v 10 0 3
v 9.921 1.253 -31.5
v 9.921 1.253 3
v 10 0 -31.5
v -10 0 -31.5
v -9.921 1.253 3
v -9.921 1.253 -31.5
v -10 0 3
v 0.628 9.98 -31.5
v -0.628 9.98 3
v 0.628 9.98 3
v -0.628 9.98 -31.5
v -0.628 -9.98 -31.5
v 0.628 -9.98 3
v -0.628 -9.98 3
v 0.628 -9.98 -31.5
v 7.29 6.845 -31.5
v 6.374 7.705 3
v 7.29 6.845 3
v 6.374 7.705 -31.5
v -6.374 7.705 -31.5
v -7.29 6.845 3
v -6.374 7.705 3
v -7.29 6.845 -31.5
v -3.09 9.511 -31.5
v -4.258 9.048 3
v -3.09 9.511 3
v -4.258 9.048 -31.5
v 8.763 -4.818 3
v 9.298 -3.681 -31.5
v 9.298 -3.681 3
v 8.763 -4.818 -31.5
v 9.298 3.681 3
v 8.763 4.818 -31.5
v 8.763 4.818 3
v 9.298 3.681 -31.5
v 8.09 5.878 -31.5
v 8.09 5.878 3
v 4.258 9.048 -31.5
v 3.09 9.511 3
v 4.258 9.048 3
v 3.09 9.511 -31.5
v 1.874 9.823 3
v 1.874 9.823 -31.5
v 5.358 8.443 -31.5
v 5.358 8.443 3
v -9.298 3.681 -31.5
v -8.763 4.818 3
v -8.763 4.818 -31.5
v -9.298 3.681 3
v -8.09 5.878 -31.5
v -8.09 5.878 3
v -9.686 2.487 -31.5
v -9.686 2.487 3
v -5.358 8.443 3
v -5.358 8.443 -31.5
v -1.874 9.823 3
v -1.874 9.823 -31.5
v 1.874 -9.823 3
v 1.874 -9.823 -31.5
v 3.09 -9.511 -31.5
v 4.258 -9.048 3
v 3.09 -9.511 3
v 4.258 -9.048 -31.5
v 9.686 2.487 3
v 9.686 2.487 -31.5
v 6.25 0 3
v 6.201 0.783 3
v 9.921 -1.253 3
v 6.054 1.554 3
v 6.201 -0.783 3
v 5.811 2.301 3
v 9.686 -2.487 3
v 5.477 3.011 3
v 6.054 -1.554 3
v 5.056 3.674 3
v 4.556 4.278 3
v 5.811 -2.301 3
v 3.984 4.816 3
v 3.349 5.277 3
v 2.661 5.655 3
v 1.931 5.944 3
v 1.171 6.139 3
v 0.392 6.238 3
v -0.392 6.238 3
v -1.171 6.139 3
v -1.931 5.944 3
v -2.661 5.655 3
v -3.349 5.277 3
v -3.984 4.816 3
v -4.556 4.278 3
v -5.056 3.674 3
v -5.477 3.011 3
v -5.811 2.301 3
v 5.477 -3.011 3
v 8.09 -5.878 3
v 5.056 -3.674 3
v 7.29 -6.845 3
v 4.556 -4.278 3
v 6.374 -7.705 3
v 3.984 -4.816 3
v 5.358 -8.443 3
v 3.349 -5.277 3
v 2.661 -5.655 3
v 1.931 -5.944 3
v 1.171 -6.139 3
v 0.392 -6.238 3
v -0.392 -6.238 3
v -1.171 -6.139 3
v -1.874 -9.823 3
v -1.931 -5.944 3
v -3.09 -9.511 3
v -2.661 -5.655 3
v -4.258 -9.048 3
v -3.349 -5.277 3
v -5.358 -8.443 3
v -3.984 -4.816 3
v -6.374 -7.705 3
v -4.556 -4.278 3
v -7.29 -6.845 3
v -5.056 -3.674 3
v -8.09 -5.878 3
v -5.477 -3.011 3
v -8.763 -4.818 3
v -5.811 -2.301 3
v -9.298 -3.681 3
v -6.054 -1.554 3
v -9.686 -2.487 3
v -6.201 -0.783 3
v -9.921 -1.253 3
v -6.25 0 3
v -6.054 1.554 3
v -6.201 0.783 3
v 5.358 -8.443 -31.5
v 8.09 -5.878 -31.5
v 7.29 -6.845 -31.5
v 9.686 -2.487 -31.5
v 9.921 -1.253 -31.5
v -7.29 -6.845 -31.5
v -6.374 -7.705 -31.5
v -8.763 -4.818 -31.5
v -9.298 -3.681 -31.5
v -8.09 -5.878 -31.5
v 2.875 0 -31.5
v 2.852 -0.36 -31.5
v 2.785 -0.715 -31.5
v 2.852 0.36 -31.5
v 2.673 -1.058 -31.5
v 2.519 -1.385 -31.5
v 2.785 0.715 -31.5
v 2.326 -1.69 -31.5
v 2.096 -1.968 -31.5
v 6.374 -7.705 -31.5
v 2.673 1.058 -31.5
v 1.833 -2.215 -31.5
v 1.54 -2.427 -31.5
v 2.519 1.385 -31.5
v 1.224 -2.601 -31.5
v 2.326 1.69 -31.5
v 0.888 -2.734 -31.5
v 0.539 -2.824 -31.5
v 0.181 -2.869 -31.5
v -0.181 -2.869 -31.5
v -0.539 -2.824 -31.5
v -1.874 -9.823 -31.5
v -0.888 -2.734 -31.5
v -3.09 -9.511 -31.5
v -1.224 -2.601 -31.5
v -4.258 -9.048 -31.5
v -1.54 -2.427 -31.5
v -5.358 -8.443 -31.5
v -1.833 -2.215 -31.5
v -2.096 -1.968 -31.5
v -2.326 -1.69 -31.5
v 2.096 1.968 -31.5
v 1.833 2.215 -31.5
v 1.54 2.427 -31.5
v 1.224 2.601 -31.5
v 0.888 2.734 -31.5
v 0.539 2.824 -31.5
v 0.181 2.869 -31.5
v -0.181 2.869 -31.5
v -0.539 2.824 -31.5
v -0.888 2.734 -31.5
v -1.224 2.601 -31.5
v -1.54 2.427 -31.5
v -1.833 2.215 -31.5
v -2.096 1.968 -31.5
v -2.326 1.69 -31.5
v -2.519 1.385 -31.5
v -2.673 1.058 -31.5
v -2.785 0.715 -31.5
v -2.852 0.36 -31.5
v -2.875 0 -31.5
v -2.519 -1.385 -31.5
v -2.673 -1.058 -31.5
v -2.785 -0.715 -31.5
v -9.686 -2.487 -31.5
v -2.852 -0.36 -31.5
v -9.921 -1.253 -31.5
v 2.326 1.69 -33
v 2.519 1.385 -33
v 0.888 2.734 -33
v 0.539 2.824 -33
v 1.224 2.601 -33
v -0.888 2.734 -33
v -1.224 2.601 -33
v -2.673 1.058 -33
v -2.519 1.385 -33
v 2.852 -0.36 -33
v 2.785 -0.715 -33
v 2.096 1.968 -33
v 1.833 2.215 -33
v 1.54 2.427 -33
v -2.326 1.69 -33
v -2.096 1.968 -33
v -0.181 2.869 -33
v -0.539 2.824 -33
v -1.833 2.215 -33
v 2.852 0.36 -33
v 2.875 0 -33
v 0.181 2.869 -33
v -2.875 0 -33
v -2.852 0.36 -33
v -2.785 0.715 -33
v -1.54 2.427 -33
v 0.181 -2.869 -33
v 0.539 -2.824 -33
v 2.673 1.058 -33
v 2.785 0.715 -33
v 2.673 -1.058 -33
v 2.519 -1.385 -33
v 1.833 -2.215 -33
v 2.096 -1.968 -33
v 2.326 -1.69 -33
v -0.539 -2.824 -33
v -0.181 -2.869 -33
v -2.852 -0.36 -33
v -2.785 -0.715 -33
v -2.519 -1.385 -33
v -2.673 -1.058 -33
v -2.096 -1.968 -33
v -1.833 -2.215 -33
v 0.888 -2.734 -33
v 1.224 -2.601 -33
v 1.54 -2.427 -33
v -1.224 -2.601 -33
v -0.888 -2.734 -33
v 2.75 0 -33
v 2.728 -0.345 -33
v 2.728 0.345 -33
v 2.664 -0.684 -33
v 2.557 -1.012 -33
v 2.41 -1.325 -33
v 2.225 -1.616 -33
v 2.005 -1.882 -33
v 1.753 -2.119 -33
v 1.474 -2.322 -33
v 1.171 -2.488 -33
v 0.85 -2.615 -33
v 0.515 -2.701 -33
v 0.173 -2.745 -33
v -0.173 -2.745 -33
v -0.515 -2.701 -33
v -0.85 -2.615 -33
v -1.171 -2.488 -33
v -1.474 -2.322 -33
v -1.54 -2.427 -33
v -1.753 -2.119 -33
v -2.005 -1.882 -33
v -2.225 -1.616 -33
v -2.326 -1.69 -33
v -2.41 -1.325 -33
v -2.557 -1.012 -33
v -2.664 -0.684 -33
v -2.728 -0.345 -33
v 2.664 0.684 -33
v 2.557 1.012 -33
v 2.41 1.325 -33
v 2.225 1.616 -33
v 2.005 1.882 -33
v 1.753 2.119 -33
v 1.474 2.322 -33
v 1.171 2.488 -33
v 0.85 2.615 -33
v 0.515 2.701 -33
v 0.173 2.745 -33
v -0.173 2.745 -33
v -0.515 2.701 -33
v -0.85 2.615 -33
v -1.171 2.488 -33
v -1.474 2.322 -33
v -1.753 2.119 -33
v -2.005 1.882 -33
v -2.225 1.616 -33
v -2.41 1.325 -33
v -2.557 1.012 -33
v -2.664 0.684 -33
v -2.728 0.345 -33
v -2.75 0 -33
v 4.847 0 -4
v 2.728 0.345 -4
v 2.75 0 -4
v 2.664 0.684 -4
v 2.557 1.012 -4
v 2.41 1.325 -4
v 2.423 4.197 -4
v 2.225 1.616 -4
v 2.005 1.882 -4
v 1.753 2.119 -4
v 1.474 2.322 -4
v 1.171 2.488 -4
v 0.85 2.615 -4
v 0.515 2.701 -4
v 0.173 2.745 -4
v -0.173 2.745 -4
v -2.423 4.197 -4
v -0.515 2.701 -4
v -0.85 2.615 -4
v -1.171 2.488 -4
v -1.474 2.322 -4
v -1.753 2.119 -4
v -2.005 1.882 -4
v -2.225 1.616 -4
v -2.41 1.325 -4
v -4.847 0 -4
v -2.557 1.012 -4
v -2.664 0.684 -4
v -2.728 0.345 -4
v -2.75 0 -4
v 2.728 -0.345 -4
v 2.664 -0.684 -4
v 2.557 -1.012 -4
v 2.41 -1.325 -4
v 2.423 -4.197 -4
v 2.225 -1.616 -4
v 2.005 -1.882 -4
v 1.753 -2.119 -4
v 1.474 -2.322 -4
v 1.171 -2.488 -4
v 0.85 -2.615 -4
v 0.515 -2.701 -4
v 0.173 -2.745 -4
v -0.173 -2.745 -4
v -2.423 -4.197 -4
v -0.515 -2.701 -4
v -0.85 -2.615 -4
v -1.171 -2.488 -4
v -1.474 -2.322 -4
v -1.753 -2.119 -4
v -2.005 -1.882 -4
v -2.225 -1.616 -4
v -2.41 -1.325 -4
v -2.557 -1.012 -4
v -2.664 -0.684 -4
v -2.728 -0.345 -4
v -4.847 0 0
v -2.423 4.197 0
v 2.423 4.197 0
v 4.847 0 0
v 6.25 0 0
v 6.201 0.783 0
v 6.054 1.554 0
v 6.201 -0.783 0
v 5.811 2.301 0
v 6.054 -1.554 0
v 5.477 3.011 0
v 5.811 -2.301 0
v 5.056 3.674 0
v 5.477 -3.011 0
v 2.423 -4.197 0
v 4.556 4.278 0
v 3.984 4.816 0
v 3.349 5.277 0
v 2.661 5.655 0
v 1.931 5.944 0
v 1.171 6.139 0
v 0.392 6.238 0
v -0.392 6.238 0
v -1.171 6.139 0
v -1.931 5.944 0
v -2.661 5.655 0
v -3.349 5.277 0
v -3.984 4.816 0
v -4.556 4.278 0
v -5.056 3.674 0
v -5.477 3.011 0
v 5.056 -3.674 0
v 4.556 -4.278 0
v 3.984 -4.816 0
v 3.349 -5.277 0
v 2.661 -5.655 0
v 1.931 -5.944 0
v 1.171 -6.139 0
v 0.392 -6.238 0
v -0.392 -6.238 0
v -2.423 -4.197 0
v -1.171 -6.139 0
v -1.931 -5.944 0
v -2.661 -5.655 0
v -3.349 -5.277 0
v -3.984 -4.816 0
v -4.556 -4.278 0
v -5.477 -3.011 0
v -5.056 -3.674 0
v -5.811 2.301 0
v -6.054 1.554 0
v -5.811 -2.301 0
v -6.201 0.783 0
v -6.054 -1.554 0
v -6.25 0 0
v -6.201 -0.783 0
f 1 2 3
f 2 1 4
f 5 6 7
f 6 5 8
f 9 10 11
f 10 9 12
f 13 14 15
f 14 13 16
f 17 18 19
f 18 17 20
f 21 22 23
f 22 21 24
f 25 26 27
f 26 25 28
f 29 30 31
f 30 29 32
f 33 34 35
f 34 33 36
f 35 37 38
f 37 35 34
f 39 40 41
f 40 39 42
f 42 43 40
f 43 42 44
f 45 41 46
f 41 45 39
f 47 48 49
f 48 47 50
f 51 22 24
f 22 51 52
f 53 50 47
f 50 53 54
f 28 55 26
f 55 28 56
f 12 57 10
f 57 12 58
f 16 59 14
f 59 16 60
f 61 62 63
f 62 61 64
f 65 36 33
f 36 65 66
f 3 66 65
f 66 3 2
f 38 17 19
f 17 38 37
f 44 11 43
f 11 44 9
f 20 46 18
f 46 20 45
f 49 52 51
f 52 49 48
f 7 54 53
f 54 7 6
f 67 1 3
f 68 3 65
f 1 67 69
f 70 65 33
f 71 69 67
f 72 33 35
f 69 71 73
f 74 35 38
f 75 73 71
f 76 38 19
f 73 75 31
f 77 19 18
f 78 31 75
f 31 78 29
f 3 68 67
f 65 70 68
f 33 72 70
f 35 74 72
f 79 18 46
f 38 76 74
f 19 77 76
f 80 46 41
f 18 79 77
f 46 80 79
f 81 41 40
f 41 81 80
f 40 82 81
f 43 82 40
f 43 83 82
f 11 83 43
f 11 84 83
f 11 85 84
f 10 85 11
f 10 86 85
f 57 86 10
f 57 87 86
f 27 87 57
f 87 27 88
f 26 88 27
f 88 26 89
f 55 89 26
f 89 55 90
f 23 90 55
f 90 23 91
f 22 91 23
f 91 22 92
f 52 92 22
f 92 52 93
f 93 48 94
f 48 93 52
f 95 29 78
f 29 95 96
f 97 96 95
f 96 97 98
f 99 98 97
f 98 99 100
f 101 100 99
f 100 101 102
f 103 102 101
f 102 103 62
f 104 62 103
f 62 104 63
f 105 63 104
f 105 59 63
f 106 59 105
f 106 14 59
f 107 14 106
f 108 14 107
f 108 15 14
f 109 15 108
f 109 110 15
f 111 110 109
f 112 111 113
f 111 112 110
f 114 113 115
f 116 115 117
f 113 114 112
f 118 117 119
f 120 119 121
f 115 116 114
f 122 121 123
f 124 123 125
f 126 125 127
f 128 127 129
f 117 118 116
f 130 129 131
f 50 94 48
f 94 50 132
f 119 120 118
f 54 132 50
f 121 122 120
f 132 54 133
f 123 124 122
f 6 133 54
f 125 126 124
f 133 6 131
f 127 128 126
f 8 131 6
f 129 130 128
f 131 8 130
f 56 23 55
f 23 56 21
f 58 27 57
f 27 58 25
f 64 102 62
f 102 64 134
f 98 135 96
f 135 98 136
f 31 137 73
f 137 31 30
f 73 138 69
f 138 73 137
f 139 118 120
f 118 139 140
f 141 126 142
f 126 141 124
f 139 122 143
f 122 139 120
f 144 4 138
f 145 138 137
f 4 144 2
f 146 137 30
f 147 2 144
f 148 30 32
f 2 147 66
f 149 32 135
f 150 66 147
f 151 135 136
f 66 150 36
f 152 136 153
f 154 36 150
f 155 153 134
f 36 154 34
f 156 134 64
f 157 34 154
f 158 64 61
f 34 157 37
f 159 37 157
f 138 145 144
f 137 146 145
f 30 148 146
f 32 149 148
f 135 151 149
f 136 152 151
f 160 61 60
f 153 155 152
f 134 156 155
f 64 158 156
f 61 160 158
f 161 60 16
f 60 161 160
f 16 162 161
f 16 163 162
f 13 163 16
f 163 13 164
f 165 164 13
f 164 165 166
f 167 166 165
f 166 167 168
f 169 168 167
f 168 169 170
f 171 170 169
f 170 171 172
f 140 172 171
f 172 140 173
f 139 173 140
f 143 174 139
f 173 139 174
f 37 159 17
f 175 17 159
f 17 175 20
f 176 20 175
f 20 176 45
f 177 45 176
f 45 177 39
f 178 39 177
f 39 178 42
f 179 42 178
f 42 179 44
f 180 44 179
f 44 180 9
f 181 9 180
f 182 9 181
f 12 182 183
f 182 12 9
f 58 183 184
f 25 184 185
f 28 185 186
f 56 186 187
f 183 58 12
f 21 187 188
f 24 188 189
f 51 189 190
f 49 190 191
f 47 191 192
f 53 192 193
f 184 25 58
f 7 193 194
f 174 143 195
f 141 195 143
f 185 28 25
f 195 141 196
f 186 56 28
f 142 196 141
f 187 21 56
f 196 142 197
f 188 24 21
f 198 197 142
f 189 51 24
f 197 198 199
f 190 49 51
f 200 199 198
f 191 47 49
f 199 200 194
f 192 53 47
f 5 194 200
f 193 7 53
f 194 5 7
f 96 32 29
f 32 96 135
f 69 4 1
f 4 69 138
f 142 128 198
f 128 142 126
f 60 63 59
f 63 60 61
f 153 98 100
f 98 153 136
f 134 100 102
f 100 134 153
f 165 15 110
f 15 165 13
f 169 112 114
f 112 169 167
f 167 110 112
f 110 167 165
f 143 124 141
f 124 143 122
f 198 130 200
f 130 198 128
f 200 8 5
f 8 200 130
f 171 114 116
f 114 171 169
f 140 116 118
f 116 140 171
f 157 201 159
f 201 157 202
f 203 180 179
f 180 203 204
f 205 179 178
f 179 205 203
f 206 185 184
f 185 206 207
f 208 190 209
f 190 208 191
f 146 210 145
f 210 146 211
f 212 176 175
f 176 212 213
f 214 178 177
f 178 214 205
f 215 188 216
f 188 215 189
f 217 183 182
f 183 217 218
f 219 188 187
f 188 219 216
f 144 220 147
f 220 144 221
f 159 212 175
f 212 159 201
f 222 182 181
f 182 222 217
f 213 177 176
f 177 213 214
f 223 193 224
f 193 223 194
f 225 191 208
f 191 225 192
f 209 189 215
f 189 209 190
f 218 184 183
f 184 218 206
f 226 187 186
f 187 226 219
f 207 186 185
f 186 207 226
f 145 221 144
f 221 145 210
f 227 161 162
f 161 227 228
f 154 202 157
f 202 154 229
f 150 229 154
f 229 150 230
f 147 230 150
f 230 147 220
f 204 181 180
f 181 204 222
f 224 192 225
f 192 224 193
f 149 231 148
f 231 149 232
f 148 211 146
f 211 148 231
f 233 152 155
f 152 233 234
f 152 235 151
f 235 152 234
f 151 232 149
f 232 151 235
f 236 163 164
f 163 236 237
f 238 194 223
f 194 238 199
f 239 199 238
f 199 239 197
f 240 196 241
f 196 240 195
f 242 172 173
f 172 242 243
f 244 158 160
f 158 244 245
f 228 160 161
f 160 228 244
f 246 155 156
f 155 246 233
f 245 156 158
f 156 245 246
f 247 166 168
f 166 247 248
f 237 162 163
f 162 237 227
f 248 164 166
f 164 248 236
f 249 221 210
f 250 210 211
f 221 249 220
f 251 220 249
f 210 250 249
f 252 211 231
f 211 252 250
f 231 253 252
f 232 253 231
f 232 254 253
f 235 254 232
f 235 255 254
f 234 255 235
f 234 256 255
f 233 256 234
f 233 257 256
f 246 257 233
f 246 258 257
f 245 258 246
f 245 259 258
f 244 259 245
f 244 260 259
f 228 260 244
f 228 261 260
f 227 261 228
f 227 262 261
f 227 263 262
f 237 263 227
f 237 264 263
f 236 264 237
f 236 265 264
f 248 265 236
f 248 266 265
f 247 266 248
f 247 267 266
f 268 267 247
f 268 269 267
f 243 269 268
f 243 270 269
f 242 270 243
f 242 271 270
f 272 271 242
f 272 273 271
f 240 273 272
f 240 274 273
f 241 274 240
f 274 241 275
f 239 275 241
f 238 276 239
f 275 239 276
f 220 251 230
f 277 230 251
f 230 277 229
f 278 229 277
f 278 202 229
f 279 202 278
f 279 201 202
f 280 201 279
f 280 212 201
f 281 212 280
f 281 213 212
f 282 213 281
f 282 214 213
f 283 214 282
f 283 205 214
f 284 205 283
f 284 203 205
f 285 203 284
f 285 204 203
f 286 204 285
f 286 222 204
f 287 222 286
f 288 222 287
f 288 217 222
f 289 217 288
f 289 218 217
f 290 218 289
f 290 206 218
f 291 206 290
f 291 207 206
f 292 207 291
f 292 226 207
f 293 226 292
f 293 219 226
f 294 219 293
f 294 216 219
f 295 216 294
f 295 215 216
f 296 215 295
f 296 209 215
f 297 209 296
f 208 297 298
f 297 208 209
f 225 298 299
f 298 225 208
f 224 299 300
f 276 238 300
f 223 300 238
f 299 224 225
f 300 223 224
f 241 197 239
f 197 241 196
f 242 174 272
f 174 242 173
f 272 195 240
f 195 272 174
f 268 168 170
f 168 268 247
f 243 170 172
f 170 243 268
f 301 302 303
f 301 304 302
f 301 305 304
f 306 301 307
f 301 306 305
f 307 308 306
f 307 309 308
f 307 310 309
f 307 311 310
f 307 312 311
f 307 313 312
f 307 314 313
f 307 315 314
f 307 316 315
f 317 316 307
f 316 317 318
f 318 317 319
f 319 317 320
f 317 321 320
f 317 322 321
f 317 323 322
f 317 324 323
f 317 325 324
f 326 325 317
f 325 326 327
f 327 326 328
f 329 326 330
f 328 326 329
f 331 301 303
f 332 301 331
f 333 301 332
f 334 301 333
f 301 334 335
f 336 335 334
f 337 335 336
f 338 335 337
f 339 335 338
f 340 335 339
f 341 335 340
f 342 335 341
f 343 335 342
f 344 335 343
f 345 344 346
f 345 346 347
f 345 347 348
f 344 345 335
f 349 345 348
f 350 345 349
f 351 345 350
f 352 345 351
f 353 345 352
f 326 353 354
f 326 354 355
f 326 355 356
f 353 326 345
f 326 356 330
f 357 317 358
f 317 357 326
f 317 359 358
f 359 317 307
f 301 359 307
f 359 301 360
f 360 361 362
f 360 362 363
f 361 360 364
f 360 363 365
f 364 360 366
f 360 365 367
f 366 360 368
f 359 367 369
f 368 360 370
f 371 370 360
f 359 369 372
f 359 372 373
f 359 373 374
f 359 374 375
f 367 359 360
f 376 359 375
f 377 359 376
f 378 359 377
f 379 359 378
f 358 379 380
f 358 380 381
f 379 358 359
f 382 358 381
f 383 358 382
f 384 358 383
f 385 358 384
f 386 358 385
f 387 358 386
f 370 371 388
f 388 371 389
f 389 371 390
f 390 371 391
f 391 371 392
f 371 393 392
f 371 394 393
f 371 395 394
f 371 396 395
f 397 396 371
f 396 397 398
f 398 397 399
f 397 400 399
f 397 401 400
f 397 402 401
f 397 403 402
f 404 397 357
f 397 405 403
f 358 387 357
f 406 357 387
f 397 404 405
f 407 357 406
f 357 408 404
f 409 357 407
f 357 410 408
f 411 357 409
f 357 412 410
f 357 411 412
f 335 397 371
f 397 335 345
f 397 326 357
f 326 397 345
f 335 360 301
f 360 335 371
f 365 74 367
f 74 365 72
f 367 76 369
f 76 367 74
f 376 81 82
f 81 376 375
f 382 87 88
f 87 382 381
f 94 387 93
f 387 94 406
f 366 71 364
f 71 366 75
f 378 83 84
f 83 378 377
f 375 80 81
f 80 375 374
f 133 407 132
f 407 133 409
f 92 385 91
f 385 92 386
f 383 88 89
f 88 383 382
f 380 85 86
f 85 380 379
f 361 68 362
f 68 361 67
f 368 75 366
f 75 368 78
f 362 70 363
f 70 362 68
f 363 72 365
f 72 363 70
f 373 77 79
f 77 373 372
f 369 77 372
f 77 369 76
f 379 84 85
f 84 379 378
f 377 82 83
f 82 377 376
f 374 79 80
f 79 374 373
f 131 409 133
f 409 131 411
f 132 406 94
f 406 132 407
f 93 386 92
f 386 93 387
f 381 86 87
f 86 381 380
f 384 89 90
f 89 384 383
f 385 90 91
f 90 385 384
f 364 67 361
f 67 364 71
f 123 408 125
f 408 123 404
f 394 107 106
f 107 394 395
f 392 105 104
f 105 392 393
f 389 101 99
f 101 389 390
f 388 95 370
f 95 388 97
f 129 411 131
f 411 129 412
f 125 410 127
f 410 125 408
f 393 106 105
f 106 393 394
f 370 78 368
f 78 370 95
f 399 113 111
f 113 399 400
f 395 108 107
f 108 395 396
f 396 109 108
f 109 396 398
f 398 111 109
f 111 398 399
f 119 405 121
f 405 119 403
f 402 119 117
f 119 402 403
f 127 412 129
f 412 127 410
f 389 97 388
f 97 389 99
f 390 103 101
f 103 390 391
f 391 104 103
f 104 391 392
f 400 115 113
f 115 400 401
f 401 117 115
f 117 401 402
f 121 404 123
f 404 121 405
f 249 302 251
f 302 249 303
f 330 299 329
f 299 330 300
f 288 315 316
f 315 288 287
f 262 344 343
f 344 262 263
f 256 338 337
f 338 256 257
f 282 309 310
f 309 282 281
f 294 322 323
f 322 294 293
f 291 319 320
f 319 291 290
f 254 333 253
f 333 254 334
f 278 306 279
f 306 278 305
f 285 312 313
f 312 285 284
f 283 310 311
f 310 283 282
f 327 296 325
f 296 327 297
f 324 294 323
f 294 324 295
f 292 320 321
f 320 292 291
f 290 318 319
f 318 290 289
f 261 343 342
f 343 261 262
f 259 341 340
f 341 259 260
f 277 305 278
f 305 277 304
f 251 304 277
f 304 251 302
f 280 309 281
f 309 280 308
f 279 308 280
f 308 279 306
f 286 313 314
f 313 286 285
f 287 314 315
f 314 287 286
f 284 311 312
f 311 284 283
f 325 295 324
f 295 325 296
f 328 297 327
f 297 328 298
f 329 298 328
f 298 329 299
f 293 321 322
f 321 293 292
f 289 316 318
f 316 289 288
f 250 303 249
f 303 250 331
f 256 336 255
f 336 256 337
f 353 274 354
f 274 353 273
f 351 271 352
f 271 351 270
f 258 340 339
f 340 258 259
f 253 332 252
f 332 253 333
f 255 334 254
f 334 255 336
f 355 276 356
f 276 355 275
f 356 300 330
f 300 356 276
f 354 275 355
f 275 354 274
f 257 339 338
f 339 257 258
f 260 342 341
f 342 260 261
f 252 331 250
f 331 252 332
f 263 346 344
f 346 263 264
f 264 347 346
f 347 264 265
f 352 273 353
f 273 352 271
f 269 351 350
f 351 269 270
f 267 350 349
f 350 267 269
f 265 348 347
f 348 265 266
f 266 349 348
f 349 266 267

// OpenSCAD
$fn = 50;

difference() {
	union() {
		translate(v = [0, 0, -31.5]) {
			cylinder(h = 34.5, r = 10.0);
		}
		#translate(v = [0, 0, -33.0]) {
			cylinder(h = 33, r = 2.875);
		}
	}
	union() {
		translate(v = [0, 0, 0]) {
			rotate(a = [0, 0, 0]) {
				difference() {
					union() {
						translate(v = [0, 0, -4]) {
							linear_extrude(height = 4) {
								polygon(points = [[4.8468, 0.0], [2.4234000000000004, 4.197451927062417], [-2.423399999999999, 4.197451927062417], [-4.8468, 5.935618106107392e-16], [-2.423400000000002, -4.197451927062416], [2.423399999999997, -4.197451927062419]]);
							}
						}
					}
					union();
				}
			}
		}
		#cylinder(h = 3, r = 6.25);
		#translate(v = [0, 0, -100.0]) {
			cylinder(h = 200, r = 2.75);
		}
	}
}
